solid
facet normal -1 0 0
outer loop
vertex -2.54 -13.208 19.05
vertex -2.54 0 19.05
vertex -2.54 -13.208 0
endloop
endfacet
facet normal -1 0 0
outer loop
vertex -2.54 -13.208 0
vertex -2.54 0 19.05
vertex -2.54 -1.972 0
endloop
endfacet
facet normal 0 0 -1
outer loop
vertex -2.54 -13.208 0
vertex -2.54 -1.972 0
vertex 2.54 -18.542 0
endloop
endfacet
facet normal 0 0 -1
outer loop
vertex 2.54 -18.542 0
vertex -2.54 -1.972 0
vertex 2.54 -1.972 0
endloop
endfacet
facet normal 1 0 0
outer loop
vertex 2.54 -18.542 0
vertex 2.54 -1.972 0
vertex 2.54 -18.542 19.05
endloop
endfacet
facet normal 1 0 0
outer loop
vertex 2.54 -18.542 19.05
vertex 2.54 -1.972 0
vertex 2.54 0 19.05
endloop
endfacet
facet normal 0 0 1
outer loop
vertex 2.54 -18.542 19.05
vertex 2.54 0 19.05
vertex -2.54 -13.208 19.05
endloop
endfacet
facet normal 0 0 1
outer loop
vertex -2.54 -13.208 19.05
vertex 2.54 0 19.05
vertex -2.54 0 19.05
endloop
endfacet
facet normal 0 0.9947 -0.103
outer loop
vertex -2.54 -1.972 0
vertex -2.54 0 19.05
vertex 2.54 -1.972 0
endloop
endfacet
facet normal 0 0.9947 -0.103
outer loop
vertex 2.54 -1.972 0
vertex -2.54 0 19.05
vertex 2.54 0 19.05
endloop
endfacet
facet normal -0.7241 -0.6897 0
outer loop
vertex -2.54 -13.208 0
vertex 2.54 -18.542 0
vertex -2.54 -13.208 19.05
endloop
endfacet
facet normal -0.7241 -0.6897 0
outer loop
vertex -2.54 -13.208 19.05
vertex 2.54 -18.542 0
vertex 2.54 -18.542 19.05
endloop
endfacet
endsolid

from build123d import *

# Parameters (mm, degrees)
ESQUISSE1_W             = 5.08
ESQUISSE1_H             = 19.05
BOSS_EXTRU_1_DEPTH      = 20.828
ENL_V_MAT_EXTRU_1_DEPTH = 6.08
ENL_V_MAT_EXTRU_2_DEPTH = 20.05


with BuildPart() as part:
    # Esquisse1 → Boss.-Extru.1 (new body)
    with BuildSketch(Plane(origin=(0, 0, 0), x_dir=(1, 0, 0), z_dir=(0, 1, 0))):
        with Locations((0, -9.525)):
            Rectangle(ESQUISSE1_W, ESQUISSE1_H)
    extrude(amount=-BOSS_EXTRU_1_DEPTH)

    # Esquisse2 → Enlèv. mat.-Extru.1 (cut, through all)
    with BuildSketch(Plane(origin=(2.54, 0, 0), x_dir=(0, 0, -1), z_dir=(1, 0, 0))):
        Polygon((0, -1.971986417), (-19.05, 0), (0, 0), align=None)
    extrude(amount=-ENL_V_MAT_EXTRU_1_DEPTH, mode=Mode.SUBTRACT)

    # Esquisse3 → Enlèv. mat.-Extru.2 (cut, through all)
    with BuildSketch(Plane.XY.offset(19.05)):
        Polygon((-2.54, -20.828), (-2.54, -13.208), (2.54, -18.542), (2.54, -20.828), align=None)
    extrude(amount=-ENL_V_MAT_EXTRU_2_DEPTH, mode=Mode.SUBTRACT)


solid = part.part
